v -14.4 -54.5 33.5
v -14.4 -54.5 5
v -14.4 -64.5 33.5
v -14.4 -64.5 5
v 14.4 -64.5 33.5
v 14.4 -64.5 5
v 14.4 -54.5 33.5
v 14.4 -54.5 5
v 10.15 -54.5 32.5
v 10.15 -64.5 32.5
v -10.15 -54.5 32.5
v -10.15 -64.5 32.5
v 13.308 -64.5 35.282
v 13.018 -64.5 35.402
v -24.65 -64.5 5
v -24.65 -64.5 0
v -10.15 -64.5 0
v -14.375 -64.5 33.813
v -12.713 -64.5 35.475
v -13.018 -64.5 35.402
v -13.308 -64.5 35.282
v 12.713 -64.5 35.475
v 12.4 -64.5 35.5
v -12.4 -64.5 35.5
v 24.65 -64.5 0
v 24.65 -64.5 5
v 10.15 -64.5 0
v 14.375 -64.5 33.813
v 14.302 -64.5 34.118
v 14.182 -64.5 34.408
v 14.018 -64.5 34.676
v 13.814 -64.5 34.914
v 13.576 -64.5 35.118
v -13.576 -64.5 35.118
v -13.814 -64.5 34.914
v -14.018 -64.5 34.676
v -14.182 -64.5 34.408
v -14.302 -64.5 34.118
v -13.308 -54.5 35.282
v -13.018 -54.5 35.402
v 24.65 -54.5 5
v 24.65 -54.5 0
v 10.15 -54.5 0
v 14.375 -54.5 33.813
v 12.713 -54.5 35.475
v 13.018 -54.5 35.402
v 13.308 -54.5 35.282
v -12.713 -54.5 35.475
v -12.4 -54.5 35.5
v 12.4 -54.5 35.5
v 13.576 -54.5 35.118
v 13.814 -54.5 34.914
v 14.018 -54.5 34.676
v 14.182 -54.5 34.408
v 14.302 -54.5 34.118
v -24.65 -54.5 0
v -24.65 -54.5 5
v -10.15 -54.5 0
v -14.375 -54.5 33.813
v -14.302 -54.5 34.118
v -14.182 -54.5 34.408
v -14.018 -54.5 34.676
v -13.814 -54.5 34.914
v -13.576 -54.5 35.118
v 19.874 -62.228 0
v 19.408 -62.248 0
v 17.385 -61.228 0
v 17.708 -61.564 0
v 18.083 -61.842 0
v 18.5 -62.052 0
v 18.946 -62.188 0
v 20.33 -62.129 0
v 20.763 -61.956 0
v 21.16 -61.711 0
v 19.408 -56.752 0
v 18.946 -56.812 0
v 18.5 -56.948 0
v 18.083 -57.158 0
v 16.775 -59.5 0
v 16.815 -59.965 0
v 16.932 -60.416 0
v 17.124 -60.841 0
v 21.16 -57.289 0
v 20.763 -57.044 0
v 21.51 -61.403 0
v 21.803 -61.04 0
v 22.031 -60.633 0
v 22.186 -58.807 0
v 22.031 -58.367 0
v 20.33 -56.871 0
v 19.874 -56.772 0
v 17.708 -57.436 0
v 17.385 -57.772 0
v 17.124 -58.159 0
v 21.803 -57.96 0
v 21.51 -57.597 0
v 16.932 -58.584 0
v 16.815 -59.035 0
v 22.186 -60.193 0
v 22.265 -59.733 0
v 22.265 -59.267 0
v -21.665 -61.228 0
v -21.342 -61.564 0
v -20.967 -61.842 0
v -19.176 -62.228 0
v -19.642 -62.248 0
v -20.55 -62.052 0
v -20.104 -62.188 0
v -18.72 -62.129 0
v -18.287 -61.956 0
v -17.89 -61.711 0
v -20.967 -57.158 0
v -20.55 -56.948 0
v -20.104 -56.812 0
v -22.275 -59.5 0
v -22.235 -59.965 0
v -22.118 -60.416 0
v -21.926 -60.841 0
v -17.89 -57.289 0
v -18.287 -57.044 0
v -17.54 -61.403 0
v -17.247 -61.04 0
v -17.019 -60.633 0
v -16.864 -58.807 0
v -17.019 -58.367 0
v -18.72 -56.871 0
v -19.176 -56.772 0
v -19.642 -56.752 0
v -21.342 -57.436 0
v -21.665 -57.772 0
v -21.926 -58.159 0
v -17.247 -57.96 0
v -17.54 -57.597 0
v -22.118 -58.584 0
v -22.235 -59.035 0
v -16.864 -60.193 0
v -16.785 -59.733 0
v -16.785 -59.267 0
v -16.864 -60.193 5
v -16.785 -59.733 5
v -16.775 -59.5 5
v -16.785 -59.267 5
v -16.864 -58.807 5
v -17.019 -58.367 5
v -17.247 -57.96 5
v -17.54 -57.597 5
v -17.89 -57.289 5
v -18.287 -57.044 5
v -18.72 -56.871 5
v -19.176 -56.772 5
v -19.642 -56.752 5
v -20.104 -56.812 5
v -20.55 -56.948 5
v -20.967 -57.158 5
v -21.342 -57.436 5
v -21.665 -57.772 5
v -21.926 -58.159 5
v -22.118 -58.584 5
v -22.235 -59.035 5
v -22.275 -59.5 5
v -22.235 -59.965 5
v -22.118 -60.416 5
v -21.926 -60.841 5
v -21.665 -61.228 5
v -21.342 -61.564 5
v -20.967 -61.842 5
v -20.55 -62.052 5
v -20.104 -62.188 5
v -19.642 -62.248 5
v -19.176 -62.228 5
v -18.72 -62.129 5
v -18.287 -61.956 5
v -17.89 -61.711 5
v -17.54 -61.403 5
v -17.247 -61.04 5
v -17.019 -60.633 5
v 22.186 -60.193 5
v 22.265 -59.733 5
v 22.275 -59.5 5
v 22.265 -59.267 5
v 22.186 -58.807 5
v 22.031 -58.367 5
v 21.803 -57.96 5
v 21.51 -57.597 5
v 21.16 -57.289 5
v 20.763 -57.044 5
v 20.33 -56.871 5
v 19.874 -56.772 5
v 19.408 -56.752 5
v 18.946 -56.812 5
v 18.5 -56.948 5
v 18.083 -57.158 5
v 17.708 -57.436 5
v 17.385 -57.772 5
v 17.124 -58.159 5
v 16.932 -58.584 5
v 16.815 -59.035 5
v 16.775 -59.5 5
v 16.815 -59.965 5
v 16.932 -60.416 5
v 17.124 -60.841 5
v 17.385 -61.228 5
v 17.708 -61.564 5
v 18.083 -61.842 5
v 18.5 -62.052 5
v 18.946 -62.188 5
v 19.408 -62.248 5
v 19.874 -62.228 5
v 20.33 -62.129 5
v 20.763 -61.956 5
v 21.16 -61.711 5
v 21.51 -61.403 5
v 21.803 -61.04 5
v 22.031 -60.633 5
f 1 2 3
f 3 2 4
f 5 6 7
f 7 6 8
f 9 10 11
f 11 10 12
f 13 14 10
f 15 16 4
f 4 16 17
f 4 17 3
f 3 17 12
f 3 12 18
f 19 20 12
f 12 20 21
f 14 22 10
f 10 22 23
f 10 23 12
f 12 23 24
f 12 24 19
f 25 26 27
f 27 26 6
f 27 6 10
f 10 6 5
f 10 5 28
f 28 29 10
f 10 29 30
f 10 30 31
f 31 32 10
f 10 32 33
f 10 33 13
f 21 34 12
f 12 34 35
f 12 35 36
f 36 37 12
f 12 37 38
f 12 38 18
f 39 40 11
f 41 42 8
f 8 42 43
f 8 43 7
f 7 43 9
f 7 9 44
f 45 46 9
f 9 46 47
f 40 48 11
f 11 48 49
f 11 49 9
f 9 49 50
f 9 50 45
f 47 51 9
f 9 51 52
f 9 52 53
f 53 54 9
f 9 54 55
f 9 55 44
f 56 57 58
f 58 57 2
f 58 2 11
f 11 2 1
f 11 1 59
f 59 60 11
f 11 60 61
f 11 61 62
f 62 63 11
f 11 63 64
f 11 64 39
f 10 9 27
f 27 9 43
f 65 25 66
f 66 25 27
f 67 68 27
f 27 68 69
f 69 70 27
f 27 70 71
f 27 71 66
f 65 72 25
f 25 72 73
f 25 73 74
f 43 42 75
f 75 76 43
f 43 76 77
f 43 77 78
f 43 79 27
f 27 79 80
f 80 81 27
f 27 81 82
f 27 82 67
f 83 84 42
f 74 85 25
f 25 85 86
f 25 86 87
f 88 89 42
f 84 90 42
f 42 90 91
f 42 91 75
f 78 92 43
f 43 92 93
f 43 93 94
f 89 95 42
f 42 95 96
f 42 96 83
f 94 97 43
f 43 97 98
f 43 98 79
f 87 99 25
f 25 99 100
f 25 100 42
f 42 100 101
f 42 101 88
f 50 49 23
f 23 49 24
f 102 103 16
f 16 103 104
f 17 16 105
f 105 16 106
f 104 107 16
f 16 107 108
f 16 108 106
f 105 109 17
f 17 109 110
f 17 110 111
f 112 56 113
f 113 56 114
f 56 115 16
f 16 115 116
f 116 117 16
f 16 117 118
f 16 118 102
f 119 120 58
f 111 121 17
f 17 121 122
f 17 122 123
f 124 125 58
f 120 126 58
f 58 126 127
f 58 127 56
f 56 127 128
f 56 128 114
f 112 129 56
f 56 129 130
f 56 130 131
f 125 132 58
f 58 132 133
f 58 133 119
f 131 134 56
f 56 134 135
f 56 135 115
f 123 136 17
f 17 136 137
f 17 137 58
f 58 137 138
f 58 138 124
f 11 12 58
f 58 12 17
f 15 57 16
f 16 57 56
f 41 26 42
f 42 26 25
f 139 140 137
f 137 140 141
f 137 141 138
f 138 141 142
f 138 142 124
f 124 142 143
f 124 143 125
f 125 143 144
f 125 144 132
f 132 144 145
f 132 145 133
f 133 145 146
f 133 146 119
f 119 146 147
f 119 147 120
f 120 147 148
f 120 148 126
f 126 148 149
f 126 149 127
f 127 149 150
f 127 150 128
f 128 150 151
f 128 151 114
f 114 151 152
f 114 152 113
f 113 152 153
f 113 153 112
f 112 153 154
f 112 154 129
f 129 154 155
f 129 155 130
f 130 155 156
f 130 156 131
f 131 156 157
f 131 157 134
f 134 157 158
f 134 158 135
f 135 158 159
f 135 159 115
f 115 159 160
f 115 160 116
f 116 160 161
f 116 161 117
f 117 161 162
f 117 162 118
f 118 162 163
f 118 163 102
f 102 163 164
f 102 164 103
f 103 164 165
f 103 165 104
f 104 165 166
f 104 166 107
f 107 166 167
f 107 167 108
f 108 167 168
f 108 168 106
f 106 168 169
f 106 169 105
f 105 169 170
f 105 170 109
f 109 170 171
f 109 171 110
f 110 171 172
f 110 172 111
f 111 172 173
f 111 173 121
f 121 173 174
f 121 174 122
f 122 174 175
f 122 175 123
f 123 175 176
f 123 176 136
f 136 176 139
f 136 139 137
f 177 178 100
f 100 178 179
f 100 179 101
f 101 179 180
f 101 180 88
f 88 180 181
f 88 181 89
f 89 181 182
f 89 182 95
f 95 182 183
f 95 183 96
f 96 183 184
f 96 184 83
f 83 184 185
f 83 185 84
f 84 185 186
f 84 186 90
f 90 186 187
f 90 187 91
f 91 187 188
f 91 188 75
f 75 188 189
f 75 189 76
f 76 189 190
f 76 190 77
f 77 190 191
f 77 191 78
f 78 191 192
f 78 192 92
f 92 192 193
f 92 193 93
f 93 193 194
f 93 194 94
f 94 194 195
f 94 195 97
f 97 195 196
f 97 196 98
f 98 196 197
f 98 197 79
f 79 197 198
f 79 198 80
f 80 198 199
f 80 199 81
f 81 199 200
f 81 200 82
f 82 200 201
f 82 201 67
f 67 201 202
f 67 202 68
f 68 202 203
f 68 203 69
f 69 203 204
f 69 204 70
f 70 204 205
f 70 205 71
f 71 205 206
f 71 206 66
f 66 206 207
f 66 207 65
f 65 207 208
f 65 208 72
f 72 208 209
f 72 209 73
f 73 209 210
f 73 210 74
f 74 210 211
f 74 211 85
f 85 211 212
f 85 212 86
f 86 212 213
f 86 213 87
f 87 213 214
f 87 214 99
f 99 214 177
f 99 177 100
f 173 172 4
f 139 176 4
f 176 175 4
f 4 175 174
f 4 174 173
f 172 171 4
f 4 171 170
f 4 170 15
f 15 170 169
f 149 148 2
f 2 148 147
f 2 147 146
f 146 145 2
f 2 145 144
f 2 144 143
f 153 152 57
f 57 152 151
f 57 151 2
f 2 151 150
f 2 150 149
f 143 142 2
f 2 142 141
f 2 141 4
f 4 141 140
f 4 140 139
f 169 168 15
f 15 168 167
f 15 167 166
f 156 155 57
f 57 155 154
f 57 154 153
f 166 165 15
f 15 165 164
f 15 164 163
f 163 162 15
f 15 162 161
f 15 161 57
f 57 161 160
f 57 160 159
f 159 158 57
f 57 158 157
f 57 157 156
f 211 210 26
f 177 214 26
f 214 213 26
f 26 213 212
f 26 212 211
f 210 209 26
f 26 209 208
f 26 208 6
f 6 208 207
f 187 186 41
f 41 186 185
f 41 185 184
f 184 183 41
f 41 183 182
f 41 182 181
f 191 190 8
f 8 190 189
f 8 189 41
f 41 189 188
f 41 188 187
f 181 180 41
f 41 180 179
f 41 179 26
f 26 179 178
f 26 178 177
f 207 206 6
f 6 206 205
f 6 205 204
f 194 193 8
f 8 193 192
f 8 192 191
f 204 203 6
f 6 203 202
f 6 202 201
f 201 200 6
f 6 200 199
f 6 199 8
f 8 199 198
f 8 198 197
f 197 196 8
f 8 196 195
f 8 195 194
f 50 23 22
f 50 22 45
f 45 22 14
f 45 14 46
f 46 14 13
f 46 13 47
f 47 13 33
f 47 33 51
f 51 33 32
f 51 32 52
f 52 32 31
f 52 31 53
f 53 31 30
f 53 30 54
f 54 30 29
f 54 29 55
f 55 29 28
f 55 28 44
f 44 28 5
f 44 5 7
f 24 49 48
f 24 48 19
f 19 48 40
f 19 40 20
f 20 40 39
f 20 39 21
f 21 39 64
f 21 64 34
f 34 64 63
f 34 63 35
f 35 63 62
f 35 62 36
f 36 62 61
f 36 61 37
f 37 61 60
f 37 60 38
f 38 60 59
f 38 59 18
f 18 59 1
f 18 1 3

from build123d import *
from build123d.topology import SkipClean

# Parameters (mm, degrees)
SKETCH2_W             = 4.25
SKETCH2_H             = 10
BOSS_EXTRUDE1_DEPTH   = 32.5
BOSS_EXTRUDE1_2_DEPTH = 32.5
SKETCH3_W             = 28.8
SKETCH3_H             = 10
BOSS_EXTRUDE2_DEPTH   = 3
SKETCH4_W             = 8.25
SKETCH4_H             = 10
SKETCH4_W_2           = 12.5
SKETCH4_W_3           = 4.25
BOSS_EXTRUDE3_DEPTH   = 3
SKETCH5_W             = 2
SKETCH5_H             = 10
BOSS_EXTRUDE4_DEPTH   = 3
CUT_EXTRUDE1_DEPTH    = 3
SKETCH7_W             = 10.25
SKETCH7_H             = 10
SKETCH7_R             = 2.75
BOSS_EXTRUDE5_DEPTH   = 2
FILLET1_R             = 2


with BuildPart() as part:
    # Sketch2 → Boss-Extrude1 (new body)
    with BuildSketch(Plane.XY):
        with Locations((-12.275, -59.5)):
            Rectangle(SKETCH2_W, SKETCH2_H)
    extrude(amount=BOSS_EXTRUDE1_DEPTH)



with BuildPart() as body_2:
    # Sketch2 → Boss-Extrude1 2 (new body)
    with BuildSketch(Plane.XY):
        with Locations((12.275, -59.5)):
            Rectangle(SKETCH2_W, SKETCH2_H)
    extrude(amount=BOSS_EXTRUDE1_2_DEPTH)


with BuildPart() as part_1:
    add(part.part)

    add(body_2.part)  # Boss-Extrude2 merges body 2
    # Sketch3 → Boss-Extrude2 (add)
    with BuildSketch(Plane.XY.offset(32.5)):
        with Locations((0, -59.5)):
            Rectangle(SKETCH3_W, SKETCH3_H)
    extrude(amount=BOSS_EXTRUDE2_DEPTH)

    # Sketch4 → Boss-Extrude3 (add)
    with BuildSketch(Plane(origin=(0, 0, 0), x_dir=(-1, 0, 0), z_dir=(0, 0, -1))):
        with Locations((18.525, -59.5)):
            Rectangle(SKETCH4_W, SKETCH4_H)
        with Locations((-16.4, -59.5)):
            Rectangle(SKETCH4_W_2, SKETCH4_H)
        with Locations((12.275, -59.5)):
            Rectangle(SKETCH4_W_3, SKETCH4_H)
    extrude(amount=-BOSS_EXTRUDE3_DEPTH)

    # Sketch5 → Boss-Extrude4 (add)
    with BuildSketch(Plane(origin=(0, 0, 0), x_dir=(-1, 0, 0), z_dir=(0, 0, -1))):
        with Locations((23.65, -59.5)):
            Rectangle(SKETCH5_W, SKETCH5_H)
        with Locations((-23.65, -59.5)):
            Rectangle(SKETCH5_W, SKETCH5_H)
    extrude(amount=-BOSS_EXTRUDE4_DEPTH)

    # Sketch6 → Cut-Extrude1 (cut)
    with BuildSketch(Plane(origin=(0, 0, 0), x_dir=(-1, 0, 0), z_dir=(0, 0, -1))):
        with BuildLine():
            ThreePointArc((22.275, -59.5), (20.561677147, -56.952883887), (17.556599642, -57.579609407))
            Line((17.556599642, -57.579609407), (21.493400358, -61.420390593))
            ThreePointArc((21.493400358, -61.420390593), (22.072116113, -60.536677147), (22.275, -59.5))
        make_face()
        with BuildLine():
            Line((21.493400358, -61.420390593), (17.556599642, -57.579609407))
            ThreePointArc((17.556599642, -57.579609407), (17.604609407, -61.468400358), (21.493400358, -61.420390593))
        make_face()
        with BuildLine():
            ThreePointArc((-16.775, -59.5), (-16.977883887, -58.463322853), (-17.556599642, -57.579609407))
            Line((-17.556599642, -57.579609407), (-21.493400358, -61.420390593))
            ThreePointArc((-21.493400358, -61.420390593), (-18.488322853, -62.047116113), (-16.775, -59.5))
        make_face()
        with BuildLine():
            Line((-21.493400358, -61.420390593), (-17.556599642, -57.579609407))
            ThreePointArc((-17.556599642, -57.579609407), (-21.445390593, -57.531599642), (-21.493400358, -61.420390593))
        make_face()
    extrude(amount=-CUT_EXTRUDE1_DEPTH, mode=Mode.SUBTRACT)

    # Sketch7 → Boss-Extrude5 (add)
    # profile 1 of 2: a face of its own
    with SkipClean():  # the faces are left unmerged after this step: merging them gives an invalid solid
        with BuildSketch(Plane.XY.offset(3)):
            with Locations((-19.525, -59.5)):
                Rectangle(SKETCH7_W, SKETCH7_H)
            with Locations(Location((-19.525, -59.5, 0), (0, 0, 180))):
                Circle(SKETCH7_R, mode=Mode.SUBTRACT)
        # profile 2 of 2: a face of its own
        with BuildSketch(Plane.XY.offset(3)):
            with Locations((19.525, -59.5)):
                Rectangle(SKETCH7_W, SKETCH7_H)
            with Locations(Location((19.525, -59.5, 0), (0, 0, 180))):
                Circle(SKETCH7_R, mode=Mode.SUBTRACT)
        extrude(amount=BOSS_EXTRUDE5_DEPTH)
    add(part_1.part.scale(1), mode=Mode.REPLACE)  # the faces are merged on a copy

    # Fillet1
    fillet1_edges = [part_1.edges().sort_by_distance(p)[0] for p in [
        (14.4, -59.5, 35.5),
        (-14.4, -59.5, 35.5),
    ]]
    fillet(fillet1_edges, radius=FILLET1_R)


solid = part_1.part
